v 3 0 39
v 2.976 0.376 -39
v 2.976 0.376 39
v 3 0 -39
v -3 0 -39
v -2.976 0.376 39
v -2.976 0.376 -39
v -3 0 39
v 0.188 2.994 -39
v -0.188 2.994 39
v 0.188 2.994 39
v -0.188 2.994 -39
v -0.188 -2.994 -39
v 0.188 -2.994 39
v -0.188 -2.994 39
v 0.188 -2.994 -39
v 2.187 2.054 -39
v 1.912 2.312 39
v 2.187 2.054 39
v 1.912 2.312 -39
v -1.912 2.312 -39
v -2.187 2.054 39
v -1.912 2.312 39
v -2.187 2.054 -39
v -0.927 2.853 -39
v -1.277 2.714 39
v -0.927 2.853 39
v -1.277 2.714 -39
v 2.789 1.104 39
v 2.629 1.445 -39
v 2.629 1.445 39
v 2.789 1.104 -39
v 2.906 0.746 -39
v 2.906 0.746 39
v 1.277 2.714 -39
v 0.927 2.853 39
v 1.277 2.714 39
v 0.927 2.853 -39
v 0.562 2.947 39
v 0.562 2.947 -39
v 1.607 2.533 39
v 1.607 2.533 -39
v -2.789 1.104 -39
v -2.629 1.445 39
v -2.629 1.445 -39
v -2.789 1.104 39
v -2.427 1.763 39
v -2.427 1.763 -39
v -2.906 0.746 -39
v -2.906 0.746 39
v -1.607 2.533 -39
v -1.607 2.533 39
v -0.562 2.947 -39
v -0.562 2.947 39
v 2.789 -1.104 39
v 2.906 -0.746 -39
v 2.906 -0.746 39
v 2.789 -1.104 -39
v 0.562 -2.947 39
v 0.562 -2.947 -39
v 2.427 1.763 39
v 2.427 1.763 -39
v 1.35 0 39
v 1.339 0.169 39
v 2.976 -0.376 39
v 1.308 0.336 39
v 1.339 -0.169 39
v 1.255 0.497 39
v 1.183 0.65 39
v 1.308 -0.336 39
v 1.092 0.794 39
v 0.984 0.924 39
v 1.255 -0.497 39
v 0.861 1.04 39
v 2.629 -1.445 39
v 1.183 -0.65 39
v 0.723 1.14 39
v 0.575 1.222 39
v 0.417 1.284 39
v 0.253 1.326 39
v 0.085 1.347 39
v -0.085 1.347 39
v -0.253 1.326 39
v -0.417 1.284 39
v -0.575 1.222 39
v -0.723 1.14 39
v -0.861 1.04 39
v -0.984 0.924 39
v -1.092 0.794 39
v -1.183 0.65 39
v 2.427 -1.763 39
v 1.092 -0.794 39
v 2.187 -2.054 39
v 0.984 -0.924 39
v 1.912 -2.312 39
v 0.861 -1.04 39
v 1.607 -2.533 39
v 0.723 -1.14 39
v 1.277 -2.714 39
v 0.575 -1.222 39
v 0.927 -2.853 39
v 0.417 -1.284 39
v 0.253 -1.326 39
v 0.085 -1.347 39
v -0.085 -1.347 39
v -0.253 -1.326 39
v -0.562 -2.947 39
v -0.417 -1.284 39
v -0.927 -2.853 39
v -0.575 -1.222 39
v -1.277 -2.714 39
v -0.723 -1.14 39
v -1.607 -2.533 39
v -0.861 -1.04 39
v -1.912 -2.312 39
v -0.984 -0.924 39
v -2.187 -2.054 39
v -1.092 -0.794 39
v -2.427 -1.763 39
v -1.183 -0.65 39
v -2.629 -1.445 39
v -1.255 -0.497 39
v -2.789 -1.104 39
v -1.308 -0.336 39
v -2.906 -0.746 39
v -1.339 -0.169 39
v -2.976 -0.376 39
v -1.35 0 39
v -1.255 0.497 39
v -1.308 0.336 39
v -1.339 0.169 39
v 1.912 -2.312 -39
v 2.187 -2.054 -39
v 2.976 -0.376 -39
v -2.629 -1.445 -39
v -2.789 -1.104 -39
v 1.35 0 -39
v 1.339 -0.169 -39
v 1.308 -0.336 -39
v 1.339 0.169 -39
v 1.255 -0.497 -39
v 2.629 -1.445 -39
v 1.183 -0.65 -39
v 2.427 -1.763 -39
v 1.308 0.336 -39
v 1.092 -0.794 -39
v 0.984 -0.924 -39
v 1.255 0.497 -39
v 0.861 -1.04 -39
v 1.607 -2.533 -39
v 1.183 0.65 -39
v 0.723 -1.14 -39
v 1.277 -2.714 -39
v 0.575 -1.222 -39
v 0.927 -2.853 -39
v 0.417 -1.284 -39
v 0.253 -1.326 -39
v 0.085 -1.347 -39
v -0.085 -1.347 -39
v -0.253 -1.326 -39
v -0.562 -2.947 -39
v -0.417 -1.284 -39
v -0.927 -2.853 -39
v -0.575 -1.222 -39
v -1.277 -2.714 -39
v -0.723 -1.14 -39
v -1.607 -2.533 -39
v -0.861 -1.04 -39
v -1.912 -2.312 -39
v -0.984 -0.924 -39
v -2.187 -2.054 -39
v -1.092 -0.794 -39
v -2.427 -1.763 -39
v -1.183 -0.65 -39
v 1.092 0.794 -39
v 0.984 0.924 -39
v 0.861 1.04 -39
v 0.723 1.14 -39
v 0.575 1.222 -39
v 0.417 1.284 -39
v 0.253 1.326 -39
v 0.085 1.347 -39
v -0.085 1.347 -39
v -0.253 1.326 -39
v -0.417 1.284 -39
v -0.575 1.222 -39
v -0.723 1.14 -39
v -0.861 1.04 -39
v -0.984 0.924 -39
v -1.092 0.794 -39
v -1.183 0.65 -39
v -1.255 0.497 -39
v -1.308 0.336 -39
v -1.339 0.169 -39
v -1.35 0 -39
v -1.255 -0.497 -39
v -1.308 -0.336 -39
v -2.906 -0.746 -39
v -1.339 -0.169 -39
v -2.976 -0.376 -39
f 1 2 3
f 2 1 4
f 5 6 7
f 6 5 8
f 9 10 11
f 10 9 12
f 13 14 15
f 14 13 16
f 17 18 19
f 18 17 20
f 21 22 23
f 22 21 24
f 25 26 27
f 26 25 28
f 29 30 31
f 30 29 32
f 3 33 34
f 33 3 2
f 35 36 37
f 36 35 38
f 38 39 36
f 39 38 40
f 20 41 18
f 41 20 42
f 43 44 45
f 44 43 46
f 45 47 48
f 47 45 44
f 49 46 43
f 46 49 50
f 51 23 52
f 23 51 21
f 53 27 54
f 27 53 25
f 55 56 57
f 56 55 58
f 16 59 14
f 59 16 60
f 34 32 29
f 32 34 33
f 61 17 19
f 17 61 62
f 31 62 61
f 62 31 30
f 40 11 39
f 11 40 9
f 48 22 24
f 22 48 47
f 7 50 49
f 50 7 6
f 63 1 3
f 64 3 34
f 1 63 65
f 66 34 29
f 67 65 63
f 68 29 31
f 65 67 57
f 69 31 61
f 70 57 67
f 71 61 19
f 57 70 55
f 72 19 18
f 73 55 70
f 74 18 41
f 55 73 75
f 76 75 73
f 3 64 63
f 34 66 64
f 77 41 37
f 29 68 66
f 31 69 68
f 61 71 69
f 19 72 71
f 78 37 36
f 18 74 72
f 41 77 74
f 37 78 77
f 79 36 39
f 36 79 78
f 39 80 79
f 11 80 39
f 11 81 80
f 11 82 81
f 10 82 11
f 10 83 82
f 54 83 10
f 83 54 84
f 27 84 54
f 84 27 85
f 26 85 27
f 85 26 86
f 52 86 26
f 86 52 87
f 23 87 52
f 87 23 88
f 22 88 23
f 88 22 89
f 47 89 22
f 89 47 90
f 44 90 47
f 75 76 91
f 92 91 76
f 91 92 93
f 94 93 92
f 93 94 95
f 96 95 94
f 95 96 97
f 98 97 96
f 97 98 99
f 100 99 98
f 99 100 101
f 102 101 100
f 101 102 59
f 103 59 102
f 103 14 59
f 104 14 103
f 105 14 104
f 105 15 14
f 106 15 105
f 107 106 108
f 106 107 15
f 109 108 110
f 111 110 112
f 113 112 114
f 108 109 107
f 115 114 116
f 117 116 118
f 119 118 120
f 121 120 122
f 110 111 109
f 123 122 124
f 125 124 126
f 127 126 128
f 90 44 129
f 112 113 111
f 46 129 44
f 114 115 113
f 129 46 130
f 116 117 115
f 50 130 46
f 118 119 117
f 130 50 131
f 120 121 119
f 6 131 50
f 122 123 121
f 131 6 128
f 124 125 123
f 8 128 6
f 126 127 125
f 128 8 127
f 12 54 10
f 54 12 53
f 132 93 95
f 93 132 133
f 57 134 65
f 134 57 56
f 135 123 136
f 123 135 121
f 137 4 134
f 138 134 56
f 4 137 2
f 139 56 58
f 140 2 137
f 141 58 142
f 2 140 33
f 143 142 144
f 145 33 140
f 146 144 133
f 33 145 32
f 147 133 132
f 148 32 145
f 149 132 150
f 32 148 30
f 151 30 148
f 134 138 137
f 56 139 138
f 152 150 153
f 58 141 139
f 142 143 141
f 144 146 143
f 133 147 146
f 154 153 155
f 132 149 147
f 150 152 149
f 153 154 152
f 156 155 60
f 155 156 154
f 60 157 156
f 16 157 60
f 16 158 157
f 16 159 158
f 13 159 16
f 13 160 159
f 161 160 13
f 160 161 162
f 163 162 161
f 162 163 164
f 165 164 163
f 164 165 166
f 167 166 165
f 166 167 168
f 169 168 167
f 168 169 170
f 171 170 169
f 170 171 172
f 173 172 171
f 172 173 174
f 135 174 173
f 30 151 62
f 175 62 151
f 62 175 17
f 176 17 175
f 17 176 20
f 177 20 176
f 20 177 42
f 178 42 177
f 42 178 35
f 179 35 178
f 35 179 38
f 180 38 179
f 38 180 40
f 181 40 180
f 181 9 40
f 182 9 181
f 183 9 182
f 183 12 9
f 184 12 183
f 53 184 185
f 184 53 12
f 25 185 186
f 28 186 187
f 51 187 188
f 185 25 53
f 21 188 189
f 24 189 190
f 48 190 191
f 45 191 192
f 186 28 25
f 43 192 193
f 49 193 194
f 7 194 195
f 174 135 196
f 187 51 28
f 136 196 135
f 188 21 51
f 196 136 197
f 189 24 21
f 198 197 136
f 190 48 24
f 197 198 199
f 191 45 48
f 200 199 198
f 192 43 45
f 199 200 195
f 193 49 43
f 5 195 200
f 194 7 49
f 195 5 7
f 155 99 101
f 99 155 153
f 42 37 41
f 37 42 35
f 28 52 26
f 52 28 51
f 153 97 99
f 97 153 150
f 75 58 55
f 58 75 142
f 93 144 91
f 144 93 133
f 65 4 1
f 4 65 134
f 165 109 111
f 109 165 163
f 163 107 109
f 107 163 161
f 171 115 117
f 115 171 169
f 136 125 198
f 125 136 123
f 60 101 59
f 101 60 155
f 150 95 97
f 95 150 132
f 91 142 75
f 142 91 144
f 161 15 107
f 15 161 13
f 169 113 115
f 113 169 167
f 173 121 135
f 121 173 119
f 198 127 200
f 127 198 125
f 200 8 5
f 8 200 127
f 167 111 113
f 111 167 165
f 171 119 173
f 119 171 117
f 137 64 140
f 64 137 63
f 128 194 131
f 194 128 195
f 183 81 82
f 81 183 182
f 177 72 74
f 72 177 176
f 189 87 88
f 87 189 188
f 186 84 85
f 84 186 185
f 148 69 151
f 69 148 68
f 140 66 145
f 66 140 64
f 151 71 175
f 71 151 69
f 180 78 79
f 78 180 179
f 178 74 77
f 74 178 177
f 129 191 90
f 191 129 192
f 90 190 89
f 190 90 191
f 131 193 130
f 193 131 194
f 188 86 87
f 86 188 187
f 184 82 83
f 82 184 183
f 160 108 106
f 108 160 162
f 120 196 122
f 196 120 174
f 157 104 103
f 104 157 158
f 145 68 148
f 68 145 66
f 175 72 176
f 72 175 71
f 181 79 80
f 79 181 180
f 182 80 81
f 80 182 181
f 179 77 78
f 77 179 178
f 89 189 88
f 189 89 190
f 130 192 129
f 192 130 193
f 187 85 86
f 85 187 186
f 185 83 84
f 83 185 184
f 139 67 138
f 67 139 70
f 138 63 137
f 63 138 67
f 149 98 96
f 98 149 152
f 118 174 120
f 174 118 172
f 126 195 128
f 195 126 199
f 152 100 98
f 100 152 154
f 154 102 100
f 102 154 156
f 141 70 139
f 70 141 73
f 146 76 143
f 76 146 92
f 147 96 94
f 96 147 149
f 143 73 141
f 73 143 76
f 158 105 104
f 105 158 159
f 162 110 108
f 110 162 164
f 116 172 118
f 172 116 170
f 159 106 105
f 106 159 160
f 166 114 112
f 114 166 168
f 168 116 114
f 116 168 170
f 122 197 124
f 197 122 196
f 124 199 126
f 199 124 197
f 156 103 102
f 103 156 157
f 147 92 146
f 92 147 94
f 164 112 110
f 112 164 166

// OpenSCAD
$fn = 50;


difference() {
	union() {
		translate(v = [0, 0, -39.0000000000]) {
			cylinder(h = 78, r = 3.0000000000);
		}
	}
	union() {
		translate(v = [0, 0, -100.0000000000]) {
			cylinder(h = 200, r = 1.3500000000);
		}
	}
}
